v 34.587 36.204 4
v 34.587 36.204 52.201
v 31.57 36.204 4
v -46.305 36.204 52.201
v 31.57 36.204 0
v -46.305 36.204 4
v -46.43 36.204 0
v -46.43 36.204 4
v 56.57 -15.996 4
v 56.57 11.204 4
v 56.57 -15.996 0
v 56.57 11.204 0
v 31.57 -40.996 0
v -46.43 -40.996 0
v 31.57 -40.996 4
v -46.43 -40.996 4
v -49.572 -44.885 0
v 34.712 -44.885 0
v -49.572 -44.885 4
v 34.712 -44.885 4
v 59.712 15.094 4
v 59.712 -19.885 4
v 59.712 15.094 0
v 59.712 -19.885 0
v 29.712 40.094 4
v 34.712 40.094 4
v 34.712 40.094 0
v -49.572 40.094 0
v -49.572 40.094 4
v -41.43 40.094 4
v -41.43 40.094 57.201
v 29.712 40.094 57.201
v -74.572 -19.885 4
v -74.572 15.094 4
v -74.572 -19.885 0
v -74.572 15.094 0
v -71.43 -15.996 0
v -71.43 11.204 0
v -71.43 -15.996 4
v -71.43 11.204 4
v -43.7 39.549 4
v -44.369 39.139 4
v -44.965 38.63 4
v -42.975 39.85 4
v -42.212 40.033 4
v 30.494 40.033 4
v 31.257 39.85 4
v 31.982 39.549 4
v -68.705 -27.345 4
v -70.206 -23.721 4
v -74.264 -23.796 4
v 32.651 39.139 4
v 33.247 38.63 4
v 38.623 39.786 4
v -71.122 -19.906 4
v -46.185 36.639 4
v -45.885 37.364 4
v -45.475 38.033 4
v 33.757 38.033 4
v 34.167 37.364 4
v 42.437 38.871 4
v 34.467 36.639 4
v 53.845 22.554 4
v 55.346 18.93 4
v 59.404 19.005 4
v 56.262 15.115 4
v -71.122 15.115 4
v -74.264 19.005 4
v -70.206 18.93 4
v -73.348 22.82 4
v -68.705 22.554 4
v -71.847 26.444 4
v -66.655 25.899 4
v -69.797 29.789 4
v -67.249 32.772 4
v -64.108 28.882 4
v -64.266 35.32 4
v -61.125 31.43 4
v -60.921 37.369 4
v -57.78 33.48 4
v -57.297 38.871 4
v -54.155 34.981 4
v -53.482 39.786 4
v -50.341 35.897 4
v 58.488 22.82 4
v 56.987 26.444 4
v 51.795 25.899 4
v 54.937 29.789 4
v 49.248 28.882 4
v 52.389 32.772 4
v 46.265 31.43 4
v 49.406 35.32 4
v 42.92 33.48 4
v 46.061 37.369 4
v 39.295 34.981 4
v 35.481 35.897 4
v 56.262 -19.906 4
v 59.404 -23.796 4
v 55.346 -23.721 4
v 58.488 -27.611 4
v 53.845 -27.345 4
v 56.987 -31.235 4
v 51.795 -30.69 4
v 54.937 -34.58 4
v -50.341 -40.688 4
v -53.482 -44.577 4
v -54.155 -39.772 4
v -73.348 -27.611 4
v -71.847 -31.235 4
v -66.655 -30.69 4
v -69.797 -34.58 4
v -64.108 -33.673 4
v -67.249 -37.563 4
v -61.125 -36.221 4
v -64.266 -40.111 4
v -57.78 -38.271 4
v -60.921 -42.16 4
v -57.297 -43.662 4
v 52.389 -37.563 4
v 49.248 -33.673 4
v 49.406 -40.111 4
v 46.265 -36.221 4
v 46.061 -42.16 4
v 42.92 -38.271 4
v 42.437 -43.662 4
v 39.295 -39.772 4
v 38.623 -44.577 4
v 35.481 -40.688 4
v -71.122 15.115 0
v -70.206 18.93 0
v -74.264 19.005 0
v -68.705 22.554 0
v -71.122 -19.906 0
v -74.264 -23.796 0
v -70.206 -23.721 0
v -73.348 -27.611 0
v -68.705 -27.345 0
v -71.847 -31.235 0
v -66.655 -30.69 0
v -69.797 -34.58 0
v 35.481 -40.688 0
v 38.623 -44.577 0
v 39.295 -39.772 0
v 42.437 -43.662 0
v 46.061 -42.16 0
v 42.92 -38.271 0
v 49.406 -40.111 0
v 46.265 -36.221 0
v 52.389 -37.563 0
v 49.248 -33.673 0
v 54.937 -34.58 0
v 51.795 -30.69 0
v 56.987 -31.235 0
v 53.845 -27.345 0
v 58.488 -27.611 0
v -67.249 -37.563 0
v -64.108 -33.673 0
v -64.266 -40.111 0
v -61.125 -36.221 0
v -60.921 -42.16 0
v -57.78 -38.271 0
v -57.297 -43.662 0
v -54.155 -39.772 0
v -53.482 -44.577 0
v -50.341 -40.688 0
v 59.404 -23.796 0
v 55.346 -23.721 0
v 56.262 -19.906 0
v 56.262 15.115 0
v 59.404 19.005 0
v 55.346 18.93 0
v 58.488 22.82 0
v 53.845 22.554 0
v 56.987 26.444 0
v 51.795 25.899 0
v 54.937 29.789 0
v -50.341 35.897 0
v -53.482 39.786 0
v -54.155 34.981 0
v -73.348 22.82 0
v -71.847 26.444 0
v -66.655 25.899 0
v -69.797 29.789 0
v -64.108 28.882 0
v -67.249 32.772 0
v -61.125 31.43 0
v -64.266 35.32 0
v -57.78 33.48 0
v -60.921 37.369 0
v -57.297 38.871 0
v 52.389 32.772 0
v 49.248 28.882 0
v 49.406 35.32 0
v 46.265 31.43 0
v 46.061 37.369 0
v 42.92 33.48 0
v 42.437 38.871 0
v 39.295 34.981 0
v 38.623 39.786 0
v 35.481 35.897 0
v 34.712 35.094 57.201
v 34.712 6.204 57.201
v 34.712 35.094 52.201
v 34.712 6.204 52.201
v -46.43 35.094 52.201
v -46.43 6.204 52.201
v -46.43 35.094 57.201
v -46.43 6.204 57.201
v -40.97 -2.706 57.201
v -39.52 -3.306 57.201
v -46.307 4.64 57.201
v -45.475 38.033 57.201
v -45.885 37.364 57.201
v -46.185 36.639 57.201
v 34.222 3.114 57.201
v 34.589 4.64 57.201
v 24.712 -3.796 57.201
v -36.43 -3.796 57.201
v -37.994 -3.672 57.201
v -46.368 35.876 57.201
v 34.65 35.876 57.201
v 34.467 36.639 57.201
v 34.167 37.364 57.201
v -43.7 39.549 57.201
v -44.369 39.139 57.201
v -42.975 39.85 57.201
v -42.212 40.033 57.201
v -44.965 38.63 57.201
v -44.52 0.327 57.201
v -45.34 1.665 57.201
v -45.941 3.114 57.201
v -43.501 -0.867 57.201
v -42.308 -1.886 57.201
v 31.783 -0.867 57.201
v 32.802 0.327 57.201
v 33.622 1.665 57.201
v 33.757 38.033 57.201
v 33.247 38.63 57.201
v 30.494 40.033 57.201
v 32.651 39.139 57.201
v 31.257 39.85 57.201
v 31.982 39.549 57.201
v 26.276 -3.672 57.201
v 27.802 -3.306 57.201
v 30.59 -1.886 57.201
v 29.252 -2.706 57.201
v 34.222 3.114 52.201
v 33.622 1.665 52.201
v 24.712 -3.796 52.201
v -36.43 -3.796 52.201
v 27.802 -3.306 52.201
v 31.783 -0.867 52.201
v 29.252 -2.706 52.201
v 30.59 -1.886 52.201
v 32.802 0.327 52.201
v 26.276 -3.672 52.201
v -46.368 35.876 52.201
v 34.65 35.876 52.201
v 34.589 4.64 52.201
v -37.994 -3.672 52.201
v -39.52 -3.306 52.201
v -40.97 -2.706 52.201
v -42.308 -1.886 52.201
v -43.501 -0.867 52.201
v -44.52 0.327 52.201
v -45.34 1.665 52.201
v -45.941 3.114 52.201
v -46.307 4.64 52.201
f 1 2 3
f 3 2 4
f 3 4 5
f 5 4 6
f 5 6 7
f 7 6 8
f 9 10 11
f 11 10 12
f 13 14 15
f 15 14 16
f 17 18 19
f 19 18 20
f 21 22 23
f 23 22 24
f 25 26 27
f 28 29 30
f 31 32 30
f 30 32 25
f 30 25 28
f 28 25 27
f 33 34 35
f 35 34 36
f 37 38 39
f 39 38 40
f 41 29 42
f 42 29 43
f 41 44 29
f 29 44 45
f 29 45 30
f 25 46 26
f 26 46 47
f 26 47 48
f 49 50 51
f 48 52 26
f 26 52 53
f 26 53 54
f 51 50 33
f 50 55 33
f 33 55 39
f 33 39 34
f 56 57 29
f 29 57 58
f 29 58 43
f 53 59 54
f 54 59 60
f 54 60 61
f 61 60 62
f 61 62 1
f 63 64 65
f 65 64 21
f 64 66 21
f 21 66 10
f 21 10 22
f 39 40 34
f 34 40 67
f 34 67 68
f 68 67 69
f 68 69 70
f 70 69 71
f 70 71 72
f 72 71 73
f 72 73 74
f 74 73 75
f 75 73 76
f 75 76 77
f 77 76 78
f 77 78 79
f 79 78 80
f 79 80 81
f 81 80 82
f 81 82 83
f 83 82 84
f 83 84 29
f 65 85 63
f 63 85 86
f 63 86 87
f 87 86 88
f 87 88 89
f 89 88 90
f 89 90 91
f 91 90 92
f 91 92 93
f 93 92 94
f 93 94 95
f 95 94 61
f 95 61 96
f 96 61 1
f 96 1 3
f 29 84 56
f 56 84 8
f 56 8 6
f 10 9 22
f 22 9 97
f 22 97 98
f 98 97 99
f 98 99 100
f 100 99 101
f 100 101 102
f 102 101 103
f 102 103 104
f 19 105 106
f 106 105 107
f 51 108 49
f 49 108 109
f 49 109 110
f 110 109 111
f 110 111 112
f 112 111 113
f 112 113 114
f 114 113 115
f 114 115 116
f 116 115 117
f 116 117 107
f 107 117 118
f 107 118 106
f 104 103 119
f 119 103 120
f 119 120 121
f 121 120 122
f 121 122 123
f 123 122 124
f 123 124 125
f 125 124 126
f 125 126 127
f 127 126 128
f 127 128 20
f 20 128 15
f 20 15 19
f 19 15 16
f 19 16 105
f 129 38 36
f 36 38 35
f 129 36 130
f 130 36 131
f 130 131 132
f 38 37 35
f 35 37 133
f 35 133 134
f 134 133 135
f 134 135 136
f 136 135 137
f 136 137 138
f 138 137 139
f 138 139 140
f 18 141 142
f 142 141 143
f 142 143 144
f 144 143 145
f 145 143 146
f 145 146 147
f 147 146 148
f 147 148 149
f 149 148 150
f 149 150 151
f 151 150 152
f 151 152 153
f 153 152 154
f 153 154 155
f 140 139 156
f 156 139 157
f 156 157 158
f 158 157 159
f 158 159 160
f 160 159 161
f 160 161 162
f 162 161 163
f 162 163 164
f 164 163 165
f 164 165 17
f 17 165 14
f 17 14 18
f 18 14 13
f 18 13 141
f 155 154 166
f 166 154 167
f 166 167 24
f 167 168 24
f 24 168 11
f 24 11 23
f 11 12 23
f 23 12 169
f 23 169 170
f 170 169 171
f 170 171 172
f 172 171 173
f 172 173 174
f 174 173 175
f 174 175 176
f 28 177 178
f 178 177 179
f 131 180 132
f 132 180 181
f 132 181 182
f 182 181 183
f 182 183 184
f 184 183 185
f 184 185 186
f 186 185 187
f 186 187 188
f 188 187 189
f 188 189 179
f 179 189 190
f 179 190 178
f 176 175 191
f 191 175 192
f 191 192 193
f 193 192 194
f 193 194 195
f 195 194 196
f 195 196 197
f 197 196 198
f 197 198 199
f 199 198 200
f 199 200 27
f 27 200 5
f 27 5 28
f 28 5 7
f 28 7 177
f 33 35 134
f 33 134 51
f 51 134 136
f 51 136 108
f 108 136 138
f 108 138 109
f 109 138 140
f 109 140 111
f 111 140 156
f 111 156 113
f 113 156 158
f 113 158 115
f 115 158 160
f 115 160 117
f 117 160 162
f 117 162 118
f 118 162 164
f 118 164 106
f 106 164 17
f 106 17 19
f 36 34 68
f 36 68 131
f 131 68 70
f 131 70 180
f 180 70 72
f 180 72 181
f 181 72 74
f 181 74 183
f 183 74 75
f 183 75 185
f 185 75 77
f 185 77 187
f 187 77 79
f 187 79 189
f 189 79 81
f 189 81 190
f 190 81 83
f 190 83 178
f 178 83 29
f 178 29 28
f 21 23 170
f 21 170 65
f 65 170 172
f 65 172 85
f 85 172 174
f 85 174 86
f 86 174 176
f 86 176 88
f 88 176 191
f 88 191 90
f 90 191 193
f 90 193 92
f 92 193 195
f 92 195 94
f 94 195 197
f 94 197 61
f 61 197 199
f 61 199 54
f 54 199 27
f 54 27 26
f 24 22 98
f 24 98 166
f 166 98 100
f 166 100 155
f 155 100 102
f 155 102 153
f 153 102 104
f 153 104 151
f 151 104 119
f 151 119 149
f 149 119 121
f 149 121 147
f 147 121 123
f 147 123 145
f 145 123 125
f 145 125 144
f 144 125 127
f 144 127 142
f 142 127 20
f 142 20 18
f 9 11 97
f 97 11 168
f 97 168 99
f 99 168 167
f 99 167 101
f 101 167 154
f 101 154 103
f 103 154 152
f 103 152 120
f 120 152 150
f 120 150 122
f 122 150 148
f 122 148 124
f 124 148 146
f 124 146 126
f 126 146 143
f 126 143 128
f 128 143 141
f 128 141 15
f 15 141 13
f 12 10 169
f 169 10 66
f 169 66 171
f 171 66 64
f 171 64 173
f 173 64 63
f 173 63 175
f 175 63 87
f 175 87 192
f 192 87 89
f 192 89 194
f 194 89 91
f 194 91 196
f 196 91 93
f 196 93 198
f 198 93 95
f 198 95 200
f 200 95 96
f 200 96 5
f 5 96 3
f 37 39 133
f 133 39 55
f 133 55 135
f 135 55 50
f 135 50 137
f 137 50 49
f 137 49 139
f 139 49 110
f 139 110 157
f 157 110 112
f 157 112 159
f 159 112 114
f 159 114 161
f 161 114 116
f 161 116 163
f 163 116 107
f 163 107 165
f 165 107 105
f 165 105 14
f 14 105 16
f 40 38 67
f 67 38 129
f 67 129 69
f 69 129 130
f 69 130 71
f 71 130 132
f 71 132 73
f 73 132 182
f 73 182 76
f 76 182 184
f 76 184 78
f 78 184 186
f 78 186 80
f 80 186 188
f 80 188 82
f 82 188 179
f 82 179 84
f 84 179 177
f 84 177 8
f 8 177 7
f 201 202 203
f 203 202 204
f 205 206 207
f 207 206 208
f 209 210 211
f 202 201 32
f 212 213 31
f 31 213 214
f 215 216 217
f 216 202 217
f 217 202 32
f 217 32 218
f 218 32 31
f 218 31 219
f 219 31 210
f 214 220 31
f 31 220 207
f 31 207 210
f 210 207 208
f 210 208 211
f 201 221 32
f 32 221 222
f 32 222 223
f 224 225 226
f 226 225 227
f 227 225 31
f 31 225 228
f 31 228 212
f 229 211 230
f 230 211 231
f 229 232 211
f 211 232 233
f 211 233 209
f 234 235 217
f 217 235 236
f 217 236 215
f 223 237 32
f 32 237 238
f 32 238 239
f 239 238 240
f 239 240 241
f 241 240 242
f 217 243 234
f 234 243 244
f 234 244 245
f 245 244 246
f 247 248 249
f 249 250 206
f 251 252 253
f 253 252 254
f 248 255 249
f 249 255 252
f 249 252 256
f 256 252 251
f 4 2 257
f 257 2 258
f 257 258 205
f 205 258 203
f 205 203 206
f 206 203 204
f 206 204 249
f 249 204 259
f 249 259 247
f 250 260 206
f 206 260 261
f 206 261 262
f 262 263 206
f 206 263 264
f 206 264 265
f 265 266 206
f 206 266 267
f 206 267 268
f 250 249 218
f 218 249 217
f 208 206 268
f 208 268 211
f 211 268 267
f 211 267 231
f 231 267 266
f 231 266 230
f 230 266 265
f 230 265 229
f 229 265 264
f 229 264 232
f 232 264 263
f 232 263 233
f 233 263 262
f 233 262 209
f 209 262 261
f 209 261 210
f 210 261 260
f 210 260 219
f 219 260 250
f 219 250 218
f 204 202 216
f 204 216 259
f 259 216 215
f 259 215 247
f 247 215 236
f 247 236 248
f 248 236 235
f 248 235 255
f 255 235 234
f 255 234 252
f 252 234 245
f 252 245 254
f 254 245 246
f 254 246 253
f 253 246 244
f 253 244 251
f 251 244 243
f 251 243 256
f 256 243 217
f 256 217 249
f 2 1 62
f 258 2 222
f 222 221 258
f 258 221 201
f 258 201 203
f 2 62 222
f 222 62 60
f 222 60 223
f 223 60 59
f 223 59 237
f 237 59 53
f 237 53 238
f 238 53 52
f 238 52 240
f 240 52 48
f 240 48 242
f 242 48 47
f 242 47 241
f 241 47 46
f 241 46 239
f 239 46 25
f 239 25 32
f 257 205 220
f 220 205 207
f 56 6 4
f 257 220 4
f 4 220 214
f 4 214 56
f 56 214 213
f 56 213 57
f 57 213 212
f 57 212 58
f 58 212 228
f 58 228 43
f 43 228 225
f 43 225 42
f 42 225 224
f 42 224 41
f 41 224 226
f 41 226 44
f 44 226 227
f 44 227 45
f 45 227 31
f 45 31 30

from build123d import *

# Parameters (mm, degrees)
BOSS_EXTRUDE1_DEPTH = 4
FILLET1_R           = 25
SKETCH3_W           = 81.141662503
SKETCH3_H           = 3.889724504
BOSS_EXTRUDE3_DEPTH = 57.201055289
SKETCH4_W           = 81.141662503
SKETCH4_H           = 5
BOSS_EXTRUDE4_DEPTH = 40
FILLET2_R           = 10
FILLET3_R           = 5


with BuildPart() as part:
    # Sketch1 → Boss-Extrude1 (new body)
    with BuildSketch(Plane.XY):
        Polygon((-71.429943593, 36.204490704), (56.570056407, 36.204490704), (59.71171891, 40.094215208), (-74.571606096, 40.094215208), align=None)
        Polygon((56.570056407, 36.204490704), (56.570056407, -40.995509296), (59.71171891, -44.8852338), (59.71171891, 40.094215208), align=None)
        Polygon((56.570056407, -40.995509296), (59.71171891, -44.8852338), (-74.571606096, -44.8852338), (-74.571606096, 40.094215208), (-71.429943593, 36.204490704), (-71.429943593, -40.995509296), align=None)
    extrude(amount=BOSS_EXTRUDE1_DEPTH)

    # Fillet1
    fillet1_edges = [part.edges().sort_by_distance(p)[0] for p in [
        (-71.429943593, 36.204490704, 2),
        (-71.429943593, -40.995509296, 2),
        (56.570056407, -40.995509296, 2),
        (56.570056407, 36.204490704, 2),
        (-74.571606096, -44.8852338, 2),
        (-74.571606096, 40.094215208, 2),
        (59.71171891, 40.094215208, 2),
        (59.71171891, -44.8852338, 2),
    ]]
    fillet(fillet1_edges, radius=FILLET1_R)

    # Sketch3 → Boss-Extrude3 (add)
    with BuildSketch(Plane(origin=(0, 0, 0), x_dir=(-1, 0, 0), z_dir=(0, 0, -1))):
        with Locations((5.859112342, 38.149352956)):
            Rectangle(SKETCH3_W, SKETCH3_H)
    extrude(amount=-BOSS_EXTRUDE3_DEPTH)

    # Sketch4 → Boss-Extrude4 (add)
    with BuildSketch(Plane(origin=(0, 36.204490704, 0), x_dir=(-1, 0, 0), z_dir=(0, -1, 0))):
        with Locations((5.859112342, -54.701055289)):
            Rectangle(SKETCH4_W, SKETCH4_H)
    extrude(amount=BOSS_EXTRUDE4_DEPTH)

    # Fillet2
    fillet2_edges = [part.edges().sort_by_distance(p)[0] for p in [
        (-46.429943593, -3.795509296, 54.701055289),
        (34.71171891, -3.795509296, 54.701055289),
    ]]
    fillet(fillet2_edges, radius=FILLET2_R)

    # Fillet3
    # the kernel refuses this fillet: 5 mm, written as the material it takes off along each edge
    with BuildSketch(Plane(origin=(34.71171891, 40.094215208, 4), x_dir=(-1, 0, 0), z_dir=(0, 0, 1)), Plane(origin=(-46.429943593, 40.094215208, 4), x_dir=(0, -1, 0), z_dir=(0, 0, 1))) as fillet3_piece_1:
        with BuildLine():
            CenterArc((FILLET3_R, FILLET3_R), FILLET3_R, 180, 90)
            Line((0, FILLET3_R), (0, 0))
            Line((0, 0), (FILLET3_R, 0))
        make_face()
    extrude(amount=65.701055289, mode=Mode.SUBTRACT)


solid = part.part
